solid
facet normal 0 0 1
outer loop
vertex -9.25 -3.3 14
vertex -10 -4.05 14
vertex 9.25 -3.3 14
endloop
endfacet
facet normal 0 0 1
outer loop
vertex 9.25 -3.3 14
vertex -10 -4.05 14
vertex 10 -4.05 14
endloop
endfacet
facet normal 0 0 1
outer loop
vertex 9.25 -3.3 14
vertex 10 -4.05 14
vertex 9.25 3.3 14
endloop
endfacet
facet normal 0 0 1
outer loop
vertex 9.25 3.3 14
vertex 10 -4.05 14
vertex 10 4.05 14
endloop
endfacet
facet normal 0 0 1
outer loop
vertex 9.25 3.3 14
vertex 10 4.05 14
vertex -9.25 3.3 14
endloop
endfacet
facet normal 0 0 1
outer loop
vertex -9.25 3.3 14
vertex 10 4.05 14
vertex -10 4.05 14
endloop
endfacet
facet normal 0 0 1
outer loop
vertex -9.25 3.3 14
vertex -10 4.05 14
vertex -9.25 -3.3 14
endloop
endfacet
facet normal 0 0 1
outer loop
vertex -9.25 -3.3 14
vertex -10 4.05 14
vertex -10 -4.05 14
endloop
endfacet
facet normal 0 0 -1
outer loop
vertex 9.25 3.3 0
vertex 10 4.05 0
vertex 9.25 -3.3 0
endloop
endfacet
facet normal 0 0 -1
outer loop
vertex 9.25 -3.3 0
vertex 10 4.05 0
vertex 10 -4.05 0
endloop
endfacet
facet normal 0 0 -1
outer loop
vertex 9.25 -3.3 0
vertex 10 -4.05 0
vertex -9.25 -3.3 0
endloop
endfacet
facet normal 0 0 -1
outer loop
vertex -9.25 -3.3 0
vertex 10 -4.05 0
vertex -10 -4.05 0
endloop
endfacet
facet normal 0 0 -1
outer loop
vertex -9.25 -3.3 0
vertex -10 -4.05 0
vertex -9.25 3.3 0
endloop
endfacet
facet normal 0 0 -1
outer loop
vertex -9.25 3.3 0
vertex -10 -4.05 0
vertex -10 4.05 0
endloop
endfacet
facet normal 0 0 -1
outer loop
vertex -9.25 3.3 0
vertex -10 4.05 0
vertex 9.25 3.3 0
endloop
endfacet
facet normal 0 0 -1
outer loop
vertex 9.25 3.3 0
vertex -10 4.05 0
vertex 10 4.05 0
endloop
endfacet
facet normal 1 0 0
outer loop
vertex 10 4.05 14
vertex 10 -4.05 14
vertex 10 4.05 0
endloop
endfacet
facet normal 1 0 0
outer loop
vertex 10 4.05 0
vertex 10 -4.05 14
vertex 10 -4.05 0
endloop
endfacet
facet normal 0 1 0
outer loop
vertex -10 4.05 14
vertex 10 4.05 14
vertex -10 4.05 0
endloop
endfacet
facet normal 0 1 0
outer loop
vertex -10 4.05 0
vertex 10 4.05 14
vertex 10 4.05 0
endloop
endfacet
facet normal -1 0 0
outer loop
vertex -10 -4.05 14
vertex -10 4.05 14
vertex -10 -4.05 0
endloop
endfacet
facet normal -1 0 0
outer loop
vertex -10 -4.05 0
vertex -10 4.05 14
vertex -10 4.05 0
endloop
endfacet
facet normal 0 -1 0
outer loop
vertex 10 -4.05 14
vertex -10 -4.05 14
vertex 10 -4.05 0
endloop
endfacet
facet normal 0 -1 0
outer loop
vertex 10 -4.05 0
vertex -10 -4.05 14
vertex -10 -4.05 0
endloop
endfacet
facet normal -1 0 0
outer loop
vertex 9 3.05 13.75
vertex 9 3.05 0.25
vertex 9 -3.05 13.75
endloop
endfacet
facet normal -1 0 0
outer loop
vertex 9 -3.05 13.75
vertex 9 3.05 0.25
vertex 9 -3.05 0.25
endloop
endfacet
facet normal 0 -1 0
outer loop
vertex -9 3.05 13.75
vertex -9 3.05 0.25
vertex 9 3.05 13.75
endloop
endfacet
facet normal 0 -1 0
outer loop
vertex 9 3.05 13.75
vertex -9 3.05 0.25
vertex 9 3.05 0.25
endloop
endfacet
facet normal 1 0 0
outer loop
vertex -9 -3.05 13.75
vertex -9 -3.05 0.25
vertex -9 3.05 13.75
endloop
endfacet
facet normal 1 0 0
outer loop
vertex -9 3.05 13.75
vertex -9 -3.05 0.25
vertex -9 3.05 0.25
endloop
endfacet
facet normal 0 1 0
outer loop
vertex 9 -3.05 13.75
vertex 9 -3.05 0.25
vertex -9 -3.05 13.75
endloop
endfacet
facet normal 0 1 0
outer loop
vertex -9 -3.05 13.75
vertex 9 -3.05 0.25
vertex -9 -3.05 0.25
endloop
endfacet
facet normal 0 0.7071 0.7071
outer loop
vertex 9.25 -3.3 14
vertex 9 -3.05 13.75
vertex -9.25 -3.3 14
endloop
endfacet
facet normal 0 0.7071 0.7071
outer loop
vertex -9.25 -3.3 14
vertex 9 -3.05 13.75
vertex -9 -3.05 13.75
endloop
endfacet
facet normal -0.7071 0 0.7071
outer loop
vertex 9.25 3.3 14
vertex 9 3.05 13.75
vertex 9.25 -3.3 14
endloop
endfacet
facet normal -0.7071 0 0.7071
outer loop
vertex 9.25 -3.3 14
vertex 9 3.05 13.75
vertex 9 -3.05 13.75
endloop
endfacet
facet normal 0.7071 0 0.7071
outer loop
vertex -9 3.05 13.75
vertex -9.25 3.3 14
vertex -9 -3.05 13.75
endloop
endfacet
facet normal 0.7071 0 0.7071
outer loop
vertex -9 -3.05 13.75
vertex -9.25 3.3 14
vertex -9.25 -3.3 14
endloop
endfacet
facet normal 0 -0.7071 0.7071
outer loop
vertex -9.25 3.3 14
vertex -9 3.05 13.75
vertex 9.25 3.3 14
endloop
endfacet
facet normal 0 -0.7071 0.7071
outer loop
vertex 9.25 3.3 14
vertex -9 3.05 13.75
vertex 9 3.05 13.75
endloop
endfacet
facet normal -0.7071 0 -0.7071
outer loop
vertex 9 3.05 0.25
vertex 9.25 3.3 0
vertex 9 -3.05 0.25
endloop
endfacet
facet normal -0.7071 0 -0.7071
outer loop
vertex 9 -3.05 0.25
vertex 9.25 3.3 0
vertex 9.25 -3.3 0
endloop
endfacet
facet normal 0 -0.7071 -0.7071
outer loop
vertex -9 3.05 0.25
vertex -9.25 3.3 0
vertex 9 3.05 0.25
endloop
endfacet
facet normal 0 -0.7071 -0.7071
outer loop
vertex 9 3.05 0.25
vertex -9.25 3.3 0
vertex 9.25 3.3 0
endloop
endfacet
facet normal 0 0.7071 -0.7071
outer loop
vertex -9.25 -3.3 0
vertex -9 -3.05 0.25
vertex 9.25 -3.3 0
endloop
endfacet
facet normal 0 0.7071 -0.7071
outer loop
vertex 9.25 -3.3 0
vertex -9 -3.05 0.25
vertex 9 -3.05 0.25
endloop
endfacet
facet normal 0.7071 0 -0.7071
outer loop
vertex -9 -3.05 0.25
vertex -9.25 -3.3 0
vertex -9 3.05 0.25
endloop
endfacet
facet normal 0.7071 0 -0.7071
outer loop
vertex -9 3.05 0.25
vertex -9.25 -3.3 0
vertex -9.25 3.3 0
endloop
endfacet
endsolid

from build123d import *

# Parameters (mm, degrees)
SKETCH1_W           = 20
SKETCH1_H           = 8.1
SKETCH1_W_2         = 18
SKETCH1_H_2         = 6.1
BOSS_EXTRUDE1_DEPTH = 14
CHAMFER1_SIZE       = 0.25


with BuildPart() as part:
    # Sketch1 → Boss-Extrude1 (new body)
    with BuildSketch(Plane.XY):
        Rectangle(SKETCH1_W, SKETCH1_H)
        Rectangle(SKETCH1_W_2, SKETCH1_H_2, mode=Mode.SUBTRACT)
    extrude(amount=BOSS_EXTRUDE1_DEPTH)

    # Chamfer1
    chamfer1_edges = [part.edges().sort_by_distance(p)[0] for p in [
        (9, 0, 0),
        (0, 3.05, 0),
        (-9, 0, 0),
        (0, -3.05, 0),
        (9, 0, 14),
        (0, 3.05, 14),
        (-9, 0, 14),
        (0, -3.05, 14),
    ]]
    chamfer(chamfer1_edges, length=CHAMFER1_SIZE)


solid = part.part
